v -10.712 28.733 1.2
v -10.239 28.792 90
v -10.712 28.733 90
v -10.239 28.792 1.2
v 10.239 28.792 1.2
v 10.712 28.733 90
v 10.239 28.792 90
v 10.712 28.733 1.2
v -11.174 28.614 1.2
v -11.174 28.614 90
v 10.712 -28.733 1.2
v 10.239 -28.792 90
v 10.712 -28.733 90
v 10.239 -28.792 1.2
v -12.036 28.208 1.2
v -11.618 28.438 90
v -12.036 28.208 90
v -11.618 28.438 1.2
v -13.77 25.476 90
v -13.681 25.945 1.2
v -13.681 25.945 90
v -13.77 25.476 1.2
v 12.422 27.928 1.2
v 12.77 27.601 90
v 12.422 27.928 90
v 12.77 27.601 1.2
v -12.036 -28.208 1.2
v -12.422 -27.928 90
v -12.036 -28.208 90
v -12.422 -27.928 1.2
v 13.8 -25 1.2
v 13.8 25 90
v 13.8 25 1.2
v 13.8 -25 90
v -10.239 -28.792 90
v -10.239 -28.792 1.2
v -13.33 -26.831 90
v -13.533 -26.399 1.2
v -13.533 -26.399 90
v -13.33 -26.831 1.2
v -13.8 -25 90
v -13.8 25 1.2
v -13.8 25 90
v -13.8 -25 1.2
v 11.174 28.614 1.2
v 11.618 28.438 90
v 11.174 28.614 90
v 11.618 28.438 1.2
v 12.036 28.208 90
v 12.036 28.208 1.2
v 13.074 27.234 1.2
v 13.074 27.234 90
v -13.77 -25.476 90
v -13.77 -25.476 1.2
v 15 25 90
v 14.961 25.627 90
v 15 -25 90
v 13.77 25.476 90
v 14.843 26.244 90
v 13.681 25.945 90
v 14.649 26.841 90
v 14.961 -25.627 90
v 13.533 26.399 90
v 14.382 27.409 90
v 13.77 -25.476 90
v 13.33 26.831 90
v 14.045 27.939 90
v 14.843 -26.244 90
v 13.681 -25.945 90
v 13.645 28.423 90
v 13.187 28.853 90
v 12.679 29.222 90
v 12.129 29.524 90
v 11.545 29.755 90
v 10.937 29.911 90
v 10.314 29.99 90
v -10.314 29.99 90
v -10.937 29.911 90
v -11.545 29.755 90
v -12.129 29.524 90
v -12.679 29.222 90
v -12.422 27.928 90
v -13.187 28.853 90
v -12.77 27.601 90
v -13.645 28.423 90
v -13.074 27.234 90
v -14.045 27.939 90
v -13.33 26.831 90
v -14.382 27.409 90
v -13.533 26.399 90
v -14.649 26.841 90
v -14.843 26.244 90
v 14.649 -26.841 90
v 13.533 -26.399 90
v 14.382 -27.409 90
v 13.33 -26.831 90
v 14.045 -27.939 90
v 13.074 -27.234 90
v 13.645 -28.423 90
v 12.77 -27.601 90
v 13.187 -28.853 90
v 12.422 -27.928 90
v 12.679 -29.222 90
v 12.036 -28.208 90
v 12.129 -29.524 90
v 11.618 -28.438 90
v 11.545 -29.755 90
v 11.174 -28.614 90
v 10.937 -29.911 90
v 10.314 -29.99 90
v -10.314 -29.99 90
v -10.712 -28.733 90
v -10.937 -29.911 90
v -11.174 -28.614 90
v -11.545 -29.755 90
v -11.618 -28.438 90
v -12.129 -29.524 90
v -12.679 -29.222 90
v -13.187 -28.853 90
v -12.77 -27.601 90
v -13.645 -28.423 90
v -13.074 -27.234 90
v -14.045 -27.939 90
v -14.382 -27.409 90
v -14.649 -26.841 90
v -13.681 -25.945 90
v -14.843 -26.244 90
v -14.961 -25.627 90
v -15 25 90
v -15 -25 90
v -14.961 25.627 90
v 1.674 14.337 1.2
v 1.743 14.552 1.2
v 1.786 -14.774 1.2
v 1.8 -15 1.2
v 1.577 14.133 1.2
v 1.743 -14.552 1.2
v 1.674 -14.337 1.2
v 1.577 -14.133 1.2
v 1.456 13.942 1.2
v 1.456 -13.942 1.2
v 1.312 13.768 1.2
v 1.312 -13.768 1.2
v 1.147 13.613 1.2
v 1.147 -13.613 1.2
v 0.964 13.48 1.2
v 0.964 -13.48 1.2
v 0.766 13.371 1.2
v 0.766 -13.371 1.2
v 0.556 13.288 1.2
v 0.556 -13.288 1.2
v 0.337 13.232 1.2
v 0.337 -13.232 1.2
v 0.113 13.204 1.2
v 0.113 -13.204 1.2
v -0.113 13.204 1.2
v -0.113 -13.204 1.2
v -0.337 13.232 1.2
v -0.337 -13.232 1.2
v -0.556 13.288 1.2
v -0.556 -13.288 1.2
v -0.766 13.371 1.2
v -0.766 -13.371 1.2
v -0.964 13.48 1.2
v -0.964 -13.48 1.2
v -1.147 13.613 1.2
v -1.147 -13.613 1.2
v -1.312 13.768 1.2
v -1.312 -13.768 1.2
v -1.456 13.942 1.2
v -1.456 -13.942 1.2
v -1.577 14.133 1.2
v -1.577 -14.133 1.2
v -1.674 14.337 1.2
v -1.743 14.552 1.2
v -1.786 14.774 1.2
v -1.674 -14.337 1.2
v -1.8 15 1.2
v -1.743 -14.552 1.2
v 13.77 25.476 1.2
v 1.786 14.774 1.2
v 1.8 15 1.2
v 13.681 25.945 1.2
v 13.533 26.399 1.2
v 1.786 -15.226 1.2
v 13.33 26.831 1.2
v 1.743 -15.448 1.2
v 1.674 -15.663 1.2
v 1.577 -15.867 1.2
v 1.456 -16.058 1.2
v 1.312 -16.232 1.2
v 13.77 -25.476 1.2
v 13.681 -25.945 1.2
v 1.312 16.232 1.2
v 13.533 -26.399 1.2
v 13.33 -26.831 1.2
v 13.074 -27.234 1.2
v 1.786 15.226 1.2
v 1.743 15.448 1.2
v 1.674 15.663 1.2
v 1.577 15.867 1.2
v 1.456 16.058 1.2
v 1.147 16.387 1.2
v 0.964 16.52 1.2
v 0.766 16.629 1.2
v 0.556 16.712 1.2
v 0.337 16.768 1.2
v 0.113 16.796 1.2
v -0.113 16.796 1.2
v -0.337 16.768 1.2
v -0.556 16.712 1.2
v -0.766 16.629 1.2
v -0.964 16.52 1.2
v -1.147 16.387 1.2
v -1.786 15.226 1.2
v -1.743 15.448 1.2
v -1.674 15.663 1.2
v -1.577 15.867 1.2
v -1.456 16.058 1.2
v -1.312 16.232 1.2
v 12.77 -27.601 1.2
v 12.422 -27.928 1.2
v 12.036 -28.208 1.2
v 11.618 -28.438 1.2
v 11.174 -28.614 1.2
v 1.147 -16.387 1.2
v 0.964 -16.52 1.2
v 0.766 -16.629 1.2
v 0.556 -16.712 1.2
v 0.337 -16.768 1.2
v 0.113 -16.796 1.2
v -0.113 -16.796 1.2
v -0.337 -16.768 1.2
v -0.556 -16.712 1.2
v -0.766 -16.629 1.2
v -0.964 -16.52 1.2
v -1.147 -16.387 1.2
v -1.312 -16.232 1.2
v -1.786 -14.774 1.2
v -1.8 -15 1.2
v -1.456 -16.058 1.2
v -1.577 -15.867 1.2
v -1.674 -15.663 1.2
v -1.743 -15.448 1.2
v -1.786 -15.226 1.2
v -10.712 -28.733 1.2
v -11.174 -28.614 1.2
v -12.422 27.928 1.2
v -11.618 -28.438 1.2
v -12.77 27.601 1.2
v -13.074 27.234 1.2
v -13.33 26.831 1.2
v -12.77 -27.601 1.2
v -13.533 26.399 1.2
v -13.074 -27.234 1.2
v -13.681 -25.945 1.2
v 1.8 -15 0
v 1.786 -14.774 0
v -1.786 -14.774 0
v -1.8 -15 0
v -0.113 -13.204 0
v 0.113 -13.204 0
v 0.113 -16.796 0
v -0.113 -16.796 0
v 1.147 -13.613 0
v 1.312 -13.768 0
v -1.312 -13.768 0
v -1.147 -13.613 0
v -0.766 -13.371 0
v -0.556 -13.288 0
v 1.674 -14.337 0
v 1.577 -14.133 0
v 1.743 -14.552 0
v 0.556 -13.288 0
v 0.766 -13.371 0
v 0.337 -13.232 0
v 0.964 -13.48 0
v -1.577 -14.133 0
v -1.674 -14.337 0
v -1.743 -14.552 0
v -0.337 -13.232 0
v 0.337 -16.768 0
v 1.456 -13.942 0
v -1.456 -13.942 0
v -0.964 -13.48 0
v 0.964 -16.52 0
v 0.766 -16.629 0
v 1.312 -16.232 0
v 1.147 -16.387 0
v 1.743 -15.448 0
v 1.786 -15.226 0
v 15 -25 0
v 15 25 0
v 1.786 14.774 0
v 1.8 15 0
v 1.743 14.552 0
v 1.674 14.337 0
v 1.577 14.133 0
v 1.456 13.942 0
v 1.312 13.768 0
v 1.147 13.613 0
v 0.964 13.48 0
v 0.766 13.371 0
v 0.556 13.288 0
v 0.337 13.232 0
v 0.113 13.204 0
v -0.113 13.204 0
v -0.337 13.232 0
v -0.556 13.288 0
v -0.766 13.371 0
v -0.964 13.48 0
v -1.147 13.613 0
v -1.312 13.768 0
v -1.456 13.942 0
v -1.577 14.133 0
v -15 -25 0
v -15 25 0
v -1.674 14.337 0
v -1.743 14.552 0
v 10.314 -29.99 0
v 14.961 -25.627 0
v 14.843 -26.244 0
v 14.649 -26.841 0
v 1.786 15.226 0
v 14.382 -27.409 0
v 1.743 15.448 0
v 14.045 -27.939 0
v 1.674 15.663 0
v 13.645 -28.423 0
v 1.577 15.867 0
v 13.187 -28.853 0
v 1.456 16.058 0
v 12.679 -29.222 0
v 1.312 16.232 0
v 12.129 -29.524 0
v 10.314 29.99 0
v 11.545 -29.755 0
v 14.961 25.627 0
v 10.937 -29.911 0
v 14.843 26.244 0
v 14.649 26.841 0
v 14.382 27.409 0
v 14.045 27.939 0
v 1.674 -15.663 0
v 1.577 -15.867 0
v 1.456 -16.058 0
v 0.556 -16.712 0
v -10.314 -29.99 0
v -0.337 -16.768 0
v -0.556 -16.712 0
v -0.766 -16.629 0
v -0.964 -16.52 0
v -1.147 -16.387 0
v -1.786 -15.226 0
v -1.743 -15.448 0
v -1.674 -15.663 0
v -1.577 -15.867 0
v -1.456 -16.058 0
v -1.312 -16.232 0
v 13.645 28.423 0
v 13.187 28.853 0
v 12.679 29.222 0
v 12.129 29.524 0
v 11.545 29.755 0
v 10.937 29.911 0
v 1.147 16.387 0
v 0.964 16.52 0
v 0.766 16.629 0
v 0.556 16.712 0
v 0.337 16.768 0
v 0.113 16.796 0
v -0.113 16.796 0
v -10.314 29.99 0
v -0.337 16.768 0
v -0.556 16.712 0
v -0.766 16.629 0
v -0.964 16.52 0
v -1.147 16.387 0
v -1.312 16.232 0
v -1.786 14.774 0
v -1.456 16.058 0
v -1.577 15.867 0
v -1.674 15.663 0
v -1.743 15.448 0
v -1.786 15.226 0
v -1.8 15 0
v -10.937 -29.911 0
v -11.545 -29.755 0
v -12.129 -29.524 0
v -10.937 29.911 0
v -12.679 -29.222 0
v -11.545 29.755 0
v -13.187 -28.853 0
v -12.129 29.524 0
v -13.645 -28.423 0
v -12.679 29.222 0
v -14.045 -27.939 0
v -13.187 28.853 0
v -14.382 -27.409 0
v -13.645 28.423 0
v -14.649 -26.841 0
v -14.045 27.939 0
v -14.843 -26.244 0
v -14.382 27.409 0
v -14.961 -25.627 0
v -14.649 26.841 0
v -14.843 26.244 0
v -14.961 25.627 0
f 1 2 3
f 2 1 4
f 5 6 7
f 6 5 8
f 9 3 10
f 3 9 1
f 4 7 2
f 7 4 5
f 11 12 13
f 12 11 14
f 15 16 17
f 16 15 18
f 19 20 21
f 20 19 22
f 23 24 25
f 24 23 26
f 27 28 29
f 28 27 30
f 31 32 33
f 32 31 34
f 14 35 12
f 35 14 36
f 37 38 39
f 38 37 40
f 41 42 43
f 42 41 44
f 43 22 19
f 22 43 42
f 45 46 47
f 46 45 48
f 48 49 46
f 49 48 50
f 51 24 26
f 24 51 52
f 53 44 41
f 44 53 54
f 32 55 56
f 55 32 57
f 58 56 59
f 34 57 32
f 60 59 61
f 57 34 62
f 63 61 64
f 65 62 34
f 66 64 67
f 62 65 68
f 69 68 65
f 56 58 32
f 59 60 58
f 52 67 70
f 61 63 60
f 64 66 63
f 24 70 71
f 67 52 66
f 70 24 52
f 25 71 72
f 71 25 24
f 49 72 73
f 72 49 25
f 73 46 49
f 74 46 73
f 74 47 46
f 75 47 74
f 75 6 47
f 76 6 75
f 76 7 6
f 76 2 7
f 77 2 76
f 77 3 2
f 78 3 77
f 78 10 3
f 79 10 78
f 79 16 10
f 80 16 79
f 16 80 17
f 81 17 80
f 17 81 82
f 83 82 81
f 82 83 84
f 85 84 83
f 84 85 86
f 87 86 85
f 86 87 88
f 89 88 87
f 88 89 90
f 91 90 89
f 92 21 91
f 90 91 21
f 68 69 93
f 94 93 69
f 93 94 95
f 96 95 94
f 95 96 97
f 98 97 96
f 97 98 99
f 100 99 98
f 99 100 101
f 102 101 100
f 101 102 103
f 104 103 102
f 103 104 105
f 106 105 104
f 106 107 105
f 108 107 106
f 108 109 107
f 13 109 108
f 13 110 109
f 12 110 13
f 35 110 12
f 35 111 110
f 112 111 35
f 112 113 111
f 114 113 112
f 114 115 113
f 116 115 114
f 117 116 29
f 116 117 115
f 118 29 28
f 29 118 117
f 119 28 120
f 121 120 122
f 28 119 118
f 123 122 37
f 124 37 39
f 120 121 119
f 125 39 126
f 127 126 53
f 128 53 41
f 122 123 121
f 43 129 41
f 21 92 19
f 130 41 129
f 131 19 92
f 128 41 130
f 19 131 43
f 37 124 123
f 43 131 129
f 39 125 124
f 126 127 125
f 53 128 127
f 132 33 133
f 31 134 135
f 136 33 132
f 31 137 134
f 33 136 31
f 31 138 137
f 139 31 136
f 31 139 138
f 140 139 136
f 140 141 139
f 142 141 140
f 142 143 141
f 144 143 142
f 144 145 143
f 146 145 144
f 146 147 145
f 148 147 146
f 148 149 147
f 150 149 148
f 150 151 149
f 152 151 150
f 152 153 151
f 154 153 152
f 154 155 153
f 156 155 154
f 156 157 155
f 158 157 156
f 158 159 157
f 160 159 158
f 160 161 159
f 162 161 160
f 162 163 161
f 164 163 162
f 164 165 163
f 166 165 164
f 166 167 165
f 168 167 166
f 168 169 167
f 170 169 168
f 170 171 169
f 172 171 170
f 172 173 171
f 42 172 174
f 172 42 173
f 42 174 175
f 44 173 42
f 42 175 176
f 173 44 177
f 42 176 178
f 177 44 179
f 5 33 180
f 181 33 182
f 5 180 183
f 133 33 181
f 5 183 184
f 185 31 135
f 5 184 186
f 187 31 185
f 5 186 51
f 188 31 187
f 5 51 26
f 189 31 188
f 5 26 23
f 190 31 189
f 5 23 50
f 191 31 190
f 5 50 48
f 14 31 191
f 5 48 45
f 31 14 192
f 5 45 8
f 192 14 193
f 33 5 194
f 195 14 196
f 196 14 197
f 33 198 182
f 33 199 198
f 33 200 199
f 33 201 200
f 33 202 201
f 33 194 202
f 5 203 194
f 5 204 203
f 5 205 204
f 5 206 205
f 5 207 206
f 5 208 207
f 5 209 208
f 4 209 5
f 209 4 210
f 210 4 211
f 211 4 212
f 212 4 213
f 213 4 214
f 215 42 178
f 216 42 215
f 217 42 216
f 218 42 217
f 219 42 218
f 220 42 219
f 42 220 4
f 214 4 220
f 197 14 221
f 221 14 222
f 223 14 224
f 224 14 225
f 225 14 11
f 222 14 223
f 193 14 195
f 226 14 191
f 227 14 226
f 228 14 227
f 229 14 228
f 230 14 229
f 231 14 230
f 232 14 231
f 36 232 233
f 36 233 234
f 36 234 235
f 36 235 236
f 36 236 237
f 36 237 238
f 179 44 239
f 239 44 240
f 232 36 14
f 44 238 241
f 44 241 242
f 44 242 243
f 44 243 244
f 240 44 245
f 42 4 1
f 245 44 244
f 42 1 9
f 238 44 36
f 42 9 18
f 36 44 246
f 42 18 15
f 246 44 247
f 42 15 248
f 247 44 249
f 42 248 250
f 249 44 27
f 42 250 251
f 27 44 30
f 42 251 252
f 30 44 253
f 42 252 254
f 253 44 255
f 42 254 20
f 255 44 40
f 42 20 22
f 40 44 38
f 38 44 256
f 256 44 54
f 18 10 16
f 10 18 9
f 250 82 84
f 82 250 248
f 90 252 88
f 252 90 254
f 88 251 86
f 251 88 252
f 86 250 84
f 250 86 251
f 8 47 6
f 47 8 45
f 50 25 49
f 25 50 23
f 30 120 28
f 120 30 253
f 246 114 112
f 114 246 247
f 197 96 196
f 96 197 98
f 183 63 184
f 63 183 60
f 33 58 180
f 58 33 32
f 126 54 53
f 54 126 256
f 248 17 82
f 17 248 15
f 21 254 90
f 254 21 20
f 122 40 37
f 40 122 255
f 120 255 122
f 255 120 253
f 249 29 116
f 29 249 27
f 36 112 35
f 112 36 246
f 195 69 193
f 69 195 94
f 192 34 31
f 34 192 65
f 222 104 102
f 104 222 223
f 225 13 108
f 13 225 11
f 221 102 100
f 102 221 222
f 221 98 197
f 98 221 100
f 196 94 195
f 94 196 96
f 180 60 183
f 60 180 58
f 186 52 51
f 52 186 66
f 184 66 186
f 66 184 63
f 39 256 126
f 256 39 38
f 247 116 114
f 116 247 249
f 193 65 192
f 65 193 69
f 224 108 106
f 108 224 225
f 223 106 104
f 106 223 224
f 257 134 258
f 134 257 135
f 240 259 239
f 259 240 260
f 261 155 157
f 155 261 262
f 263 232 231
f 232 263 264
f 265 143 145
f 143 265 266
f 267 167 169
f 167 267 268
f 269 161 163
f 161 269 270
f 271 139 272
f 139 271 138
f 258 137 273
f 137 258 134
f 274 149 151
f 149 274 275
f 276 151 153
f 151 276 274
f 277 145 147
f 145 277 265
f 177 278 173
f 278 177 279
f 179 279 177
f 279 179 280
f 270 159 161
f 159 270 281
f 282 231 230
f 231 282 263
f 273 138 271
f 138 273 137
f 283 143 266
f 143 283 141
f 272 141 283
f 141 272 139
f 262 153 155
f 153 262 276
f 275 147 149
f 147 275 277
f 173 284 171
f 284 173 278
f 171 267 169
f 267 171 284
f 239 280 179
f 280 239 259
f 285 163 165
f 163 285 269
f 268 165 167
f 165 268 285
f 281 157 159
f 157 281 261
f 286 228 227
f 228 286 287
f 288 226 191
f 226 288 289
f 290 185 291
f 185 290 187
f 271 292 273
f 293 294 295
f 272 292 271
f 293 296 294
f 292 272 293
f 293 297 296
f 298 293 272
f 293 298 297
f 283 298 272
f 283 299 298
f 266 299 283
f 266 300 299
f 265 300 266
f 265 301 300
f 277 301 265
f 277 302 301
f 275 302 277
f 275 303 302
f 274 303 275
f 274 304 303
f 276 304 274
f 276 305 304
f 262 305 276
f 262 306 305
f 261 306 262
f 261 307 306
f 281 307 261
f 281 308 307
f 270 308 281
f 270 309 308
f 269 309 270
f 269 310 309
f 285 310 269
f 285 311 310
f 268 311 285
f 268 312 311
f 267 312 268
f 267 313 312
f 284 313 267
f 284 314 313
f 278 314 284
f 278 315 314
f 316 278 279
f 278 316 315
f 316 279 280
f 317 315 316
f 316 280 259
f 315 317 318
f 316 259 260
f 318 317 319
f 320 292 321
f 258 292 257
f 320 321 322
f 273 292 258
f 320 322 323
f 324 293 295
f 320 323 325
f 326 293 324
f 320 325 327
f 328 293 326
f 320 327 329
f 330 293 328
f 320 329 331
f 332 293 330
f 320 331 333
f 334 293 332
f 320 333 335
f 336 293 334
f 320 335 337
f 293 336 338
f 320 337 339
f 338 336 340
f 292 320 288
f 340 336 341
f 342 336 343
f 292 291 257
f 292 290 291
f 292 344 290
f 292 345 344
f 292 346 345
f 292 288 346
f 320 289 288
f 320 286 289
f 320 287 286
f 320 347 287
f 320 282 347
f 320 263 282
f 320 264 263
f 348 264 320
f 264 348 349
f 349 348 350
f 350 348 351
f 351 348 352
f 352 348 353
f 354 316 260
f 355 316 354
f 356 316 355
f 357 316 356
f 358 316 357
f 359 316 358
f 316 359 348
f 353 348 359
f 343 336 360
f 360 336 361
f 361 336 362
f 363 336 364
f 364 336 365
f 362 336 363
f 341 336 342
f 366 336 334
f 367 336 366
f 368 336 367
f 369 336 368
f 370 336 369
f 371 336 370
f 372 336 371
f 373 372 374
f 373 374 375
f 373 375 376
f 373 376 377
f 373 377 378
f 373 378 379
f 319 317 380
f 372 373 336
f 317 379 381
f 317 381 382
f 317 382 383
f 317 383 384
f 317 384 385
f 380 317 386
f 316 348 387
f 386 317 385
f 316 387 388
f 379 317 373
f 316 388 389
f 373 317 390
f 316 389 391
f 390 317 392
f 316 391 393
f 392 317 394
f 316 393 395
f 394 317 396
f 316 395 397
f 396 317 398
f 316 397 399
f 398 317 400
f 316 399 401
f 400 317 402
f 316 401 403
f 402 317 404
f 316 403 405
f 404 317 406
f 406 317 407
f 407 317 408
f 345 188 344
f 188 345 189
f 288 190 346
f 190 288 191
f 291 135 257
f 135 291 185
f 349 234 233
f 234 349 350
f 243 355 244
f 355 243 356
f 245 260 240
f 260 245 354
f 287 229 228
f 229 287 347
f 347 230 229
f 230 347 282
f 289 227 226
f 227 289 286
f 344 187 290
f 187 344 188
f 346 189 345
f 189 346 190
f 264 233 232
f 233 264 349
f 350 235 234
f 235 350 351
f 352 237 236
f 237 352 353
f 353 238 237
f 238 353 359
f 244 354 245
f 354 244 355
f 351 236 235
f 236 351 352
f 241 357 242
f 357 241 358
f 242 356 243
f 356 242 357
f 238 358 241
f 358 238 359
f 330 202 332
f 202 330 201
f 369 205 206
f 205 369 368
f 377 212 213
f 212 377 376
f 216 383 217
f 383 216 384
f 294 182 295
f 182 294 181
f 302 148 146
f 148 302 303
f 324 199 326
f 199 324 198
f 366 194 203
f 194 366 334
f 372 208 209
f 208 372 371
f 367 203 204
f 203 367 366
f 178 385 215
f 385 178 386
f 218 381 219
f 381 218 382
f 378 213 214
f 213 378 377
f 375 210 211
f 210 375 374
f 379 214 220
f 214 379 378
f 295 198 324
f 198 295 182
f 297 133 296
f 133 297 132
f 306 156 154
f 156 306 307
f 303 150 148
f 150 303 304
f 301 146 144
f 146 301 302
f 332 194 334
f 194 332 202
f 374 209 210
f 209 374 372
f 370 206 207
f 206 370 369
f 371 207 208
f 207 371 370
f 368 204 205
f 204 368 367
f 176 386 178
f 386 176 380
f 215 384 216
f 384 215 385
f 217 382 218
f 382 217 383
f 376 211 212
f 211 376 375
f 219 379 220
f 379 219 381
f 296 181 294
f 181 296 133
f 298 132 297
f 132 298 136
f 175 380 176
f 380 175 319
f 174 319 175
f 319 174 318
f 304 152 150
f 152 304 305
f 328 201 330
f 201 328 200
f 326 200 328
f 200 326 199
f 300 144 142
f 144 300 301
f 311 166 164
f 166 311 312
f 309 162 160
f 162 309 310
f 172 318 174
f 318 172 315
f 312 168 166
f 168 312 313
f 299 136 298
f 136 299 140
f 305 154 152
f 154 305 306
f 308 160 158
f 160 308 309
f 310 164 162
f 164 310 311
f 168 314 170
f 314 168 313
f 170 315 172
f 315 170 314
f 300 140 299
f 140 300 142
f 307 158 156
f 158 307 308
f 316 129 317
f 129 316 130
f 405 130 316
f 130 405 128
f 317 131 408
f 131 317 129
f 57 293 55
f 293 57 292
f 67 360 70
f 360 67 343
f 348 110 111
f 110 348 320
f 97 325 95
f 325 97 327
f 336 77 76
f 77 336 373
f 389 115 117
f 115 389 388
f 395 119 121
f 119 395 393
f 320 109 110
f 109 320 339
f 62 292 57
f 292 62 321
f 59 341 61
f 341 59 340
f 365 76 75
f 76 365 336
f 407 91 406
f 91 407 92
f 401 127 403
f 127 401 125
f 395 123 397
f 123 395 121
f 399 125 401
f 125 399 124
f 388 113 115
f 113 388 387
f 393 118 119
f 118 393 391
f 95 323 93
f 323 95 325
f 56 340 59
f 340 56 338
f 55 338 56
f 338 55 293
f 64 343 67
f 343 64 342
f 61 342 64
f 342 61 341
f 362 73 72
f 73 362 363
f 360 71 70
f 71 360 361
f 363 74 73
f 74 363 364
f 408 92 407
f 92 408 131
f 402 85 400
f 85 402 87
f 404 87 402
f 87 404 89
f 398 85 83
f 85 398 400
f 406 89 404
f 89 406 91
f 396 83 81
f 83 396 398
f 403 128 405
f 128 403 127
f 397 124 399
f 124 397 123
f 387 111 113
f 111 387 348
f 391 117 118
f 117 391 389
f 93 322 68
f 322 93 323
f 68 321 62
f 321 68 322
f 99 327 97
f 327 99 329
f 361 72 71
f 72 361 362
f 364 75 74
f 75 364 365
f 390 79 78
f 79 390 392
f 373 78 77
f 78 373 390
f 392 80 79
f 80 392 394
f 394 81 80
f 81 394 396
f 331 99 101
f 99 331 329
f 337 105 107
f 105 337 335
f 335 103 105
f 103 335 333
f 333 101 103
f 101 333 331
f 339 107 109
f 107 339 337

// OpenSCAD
$fn = 50;


difference() {
	union() {
		hull() {
			translate(v = [-10.0000000000, 25.0000000000, 0]) {
				cylinder(h = 90, r = 5);
			}
			translate(v = [10.0000000000, 25.0000000000, 0]) {
				cylinder(h = 90, r = 5);
			}
			translate(v = [-10.0000000000, -25.0000000000, 0]) {
				cylinder(h = 90, r = 5);
			}
			translate(v = [10.0000000000, -25.0000000000, 0]) {
				cylinder(h = 90, r = 5);
			}
		}
	}
	union() {
		translate(v = [0, 0, 1.2000000000]) {
			hull() {
				translate(v = [-10.0000000000, 25.0000000000, 0]) {
					cylinder(h = 88.8000000000, r = 3.8000000000);
				}
				translate(v = [10.0000000000, 25.0000000000, 0]) {
					cylinder(h = 88.8000000000, r = 3.8000000000);
				}
				translate(v = [-10.0000000000, -25.0000000000, 0]) {
					cylinder(h = 88.8000000000, r = 3.8000000000);
				}
				translate(v = [10.0000000000, -25.0000000000, 0]) {
					cylinder(h = 88.8000000000, r = 3.8000000000);
				}
			}
		}
		#translate(v = [0.0000000000, -15.0000000000, 0]) {
			cylinder(h = 1.2000000000, r = 1.8000000000);
		}
		#translate(v = [0.0000000000, 15.0000000000, 0]) {
			cylinder(h = 1.2000000000, r = 1.8000000000);
		}
	}
}
